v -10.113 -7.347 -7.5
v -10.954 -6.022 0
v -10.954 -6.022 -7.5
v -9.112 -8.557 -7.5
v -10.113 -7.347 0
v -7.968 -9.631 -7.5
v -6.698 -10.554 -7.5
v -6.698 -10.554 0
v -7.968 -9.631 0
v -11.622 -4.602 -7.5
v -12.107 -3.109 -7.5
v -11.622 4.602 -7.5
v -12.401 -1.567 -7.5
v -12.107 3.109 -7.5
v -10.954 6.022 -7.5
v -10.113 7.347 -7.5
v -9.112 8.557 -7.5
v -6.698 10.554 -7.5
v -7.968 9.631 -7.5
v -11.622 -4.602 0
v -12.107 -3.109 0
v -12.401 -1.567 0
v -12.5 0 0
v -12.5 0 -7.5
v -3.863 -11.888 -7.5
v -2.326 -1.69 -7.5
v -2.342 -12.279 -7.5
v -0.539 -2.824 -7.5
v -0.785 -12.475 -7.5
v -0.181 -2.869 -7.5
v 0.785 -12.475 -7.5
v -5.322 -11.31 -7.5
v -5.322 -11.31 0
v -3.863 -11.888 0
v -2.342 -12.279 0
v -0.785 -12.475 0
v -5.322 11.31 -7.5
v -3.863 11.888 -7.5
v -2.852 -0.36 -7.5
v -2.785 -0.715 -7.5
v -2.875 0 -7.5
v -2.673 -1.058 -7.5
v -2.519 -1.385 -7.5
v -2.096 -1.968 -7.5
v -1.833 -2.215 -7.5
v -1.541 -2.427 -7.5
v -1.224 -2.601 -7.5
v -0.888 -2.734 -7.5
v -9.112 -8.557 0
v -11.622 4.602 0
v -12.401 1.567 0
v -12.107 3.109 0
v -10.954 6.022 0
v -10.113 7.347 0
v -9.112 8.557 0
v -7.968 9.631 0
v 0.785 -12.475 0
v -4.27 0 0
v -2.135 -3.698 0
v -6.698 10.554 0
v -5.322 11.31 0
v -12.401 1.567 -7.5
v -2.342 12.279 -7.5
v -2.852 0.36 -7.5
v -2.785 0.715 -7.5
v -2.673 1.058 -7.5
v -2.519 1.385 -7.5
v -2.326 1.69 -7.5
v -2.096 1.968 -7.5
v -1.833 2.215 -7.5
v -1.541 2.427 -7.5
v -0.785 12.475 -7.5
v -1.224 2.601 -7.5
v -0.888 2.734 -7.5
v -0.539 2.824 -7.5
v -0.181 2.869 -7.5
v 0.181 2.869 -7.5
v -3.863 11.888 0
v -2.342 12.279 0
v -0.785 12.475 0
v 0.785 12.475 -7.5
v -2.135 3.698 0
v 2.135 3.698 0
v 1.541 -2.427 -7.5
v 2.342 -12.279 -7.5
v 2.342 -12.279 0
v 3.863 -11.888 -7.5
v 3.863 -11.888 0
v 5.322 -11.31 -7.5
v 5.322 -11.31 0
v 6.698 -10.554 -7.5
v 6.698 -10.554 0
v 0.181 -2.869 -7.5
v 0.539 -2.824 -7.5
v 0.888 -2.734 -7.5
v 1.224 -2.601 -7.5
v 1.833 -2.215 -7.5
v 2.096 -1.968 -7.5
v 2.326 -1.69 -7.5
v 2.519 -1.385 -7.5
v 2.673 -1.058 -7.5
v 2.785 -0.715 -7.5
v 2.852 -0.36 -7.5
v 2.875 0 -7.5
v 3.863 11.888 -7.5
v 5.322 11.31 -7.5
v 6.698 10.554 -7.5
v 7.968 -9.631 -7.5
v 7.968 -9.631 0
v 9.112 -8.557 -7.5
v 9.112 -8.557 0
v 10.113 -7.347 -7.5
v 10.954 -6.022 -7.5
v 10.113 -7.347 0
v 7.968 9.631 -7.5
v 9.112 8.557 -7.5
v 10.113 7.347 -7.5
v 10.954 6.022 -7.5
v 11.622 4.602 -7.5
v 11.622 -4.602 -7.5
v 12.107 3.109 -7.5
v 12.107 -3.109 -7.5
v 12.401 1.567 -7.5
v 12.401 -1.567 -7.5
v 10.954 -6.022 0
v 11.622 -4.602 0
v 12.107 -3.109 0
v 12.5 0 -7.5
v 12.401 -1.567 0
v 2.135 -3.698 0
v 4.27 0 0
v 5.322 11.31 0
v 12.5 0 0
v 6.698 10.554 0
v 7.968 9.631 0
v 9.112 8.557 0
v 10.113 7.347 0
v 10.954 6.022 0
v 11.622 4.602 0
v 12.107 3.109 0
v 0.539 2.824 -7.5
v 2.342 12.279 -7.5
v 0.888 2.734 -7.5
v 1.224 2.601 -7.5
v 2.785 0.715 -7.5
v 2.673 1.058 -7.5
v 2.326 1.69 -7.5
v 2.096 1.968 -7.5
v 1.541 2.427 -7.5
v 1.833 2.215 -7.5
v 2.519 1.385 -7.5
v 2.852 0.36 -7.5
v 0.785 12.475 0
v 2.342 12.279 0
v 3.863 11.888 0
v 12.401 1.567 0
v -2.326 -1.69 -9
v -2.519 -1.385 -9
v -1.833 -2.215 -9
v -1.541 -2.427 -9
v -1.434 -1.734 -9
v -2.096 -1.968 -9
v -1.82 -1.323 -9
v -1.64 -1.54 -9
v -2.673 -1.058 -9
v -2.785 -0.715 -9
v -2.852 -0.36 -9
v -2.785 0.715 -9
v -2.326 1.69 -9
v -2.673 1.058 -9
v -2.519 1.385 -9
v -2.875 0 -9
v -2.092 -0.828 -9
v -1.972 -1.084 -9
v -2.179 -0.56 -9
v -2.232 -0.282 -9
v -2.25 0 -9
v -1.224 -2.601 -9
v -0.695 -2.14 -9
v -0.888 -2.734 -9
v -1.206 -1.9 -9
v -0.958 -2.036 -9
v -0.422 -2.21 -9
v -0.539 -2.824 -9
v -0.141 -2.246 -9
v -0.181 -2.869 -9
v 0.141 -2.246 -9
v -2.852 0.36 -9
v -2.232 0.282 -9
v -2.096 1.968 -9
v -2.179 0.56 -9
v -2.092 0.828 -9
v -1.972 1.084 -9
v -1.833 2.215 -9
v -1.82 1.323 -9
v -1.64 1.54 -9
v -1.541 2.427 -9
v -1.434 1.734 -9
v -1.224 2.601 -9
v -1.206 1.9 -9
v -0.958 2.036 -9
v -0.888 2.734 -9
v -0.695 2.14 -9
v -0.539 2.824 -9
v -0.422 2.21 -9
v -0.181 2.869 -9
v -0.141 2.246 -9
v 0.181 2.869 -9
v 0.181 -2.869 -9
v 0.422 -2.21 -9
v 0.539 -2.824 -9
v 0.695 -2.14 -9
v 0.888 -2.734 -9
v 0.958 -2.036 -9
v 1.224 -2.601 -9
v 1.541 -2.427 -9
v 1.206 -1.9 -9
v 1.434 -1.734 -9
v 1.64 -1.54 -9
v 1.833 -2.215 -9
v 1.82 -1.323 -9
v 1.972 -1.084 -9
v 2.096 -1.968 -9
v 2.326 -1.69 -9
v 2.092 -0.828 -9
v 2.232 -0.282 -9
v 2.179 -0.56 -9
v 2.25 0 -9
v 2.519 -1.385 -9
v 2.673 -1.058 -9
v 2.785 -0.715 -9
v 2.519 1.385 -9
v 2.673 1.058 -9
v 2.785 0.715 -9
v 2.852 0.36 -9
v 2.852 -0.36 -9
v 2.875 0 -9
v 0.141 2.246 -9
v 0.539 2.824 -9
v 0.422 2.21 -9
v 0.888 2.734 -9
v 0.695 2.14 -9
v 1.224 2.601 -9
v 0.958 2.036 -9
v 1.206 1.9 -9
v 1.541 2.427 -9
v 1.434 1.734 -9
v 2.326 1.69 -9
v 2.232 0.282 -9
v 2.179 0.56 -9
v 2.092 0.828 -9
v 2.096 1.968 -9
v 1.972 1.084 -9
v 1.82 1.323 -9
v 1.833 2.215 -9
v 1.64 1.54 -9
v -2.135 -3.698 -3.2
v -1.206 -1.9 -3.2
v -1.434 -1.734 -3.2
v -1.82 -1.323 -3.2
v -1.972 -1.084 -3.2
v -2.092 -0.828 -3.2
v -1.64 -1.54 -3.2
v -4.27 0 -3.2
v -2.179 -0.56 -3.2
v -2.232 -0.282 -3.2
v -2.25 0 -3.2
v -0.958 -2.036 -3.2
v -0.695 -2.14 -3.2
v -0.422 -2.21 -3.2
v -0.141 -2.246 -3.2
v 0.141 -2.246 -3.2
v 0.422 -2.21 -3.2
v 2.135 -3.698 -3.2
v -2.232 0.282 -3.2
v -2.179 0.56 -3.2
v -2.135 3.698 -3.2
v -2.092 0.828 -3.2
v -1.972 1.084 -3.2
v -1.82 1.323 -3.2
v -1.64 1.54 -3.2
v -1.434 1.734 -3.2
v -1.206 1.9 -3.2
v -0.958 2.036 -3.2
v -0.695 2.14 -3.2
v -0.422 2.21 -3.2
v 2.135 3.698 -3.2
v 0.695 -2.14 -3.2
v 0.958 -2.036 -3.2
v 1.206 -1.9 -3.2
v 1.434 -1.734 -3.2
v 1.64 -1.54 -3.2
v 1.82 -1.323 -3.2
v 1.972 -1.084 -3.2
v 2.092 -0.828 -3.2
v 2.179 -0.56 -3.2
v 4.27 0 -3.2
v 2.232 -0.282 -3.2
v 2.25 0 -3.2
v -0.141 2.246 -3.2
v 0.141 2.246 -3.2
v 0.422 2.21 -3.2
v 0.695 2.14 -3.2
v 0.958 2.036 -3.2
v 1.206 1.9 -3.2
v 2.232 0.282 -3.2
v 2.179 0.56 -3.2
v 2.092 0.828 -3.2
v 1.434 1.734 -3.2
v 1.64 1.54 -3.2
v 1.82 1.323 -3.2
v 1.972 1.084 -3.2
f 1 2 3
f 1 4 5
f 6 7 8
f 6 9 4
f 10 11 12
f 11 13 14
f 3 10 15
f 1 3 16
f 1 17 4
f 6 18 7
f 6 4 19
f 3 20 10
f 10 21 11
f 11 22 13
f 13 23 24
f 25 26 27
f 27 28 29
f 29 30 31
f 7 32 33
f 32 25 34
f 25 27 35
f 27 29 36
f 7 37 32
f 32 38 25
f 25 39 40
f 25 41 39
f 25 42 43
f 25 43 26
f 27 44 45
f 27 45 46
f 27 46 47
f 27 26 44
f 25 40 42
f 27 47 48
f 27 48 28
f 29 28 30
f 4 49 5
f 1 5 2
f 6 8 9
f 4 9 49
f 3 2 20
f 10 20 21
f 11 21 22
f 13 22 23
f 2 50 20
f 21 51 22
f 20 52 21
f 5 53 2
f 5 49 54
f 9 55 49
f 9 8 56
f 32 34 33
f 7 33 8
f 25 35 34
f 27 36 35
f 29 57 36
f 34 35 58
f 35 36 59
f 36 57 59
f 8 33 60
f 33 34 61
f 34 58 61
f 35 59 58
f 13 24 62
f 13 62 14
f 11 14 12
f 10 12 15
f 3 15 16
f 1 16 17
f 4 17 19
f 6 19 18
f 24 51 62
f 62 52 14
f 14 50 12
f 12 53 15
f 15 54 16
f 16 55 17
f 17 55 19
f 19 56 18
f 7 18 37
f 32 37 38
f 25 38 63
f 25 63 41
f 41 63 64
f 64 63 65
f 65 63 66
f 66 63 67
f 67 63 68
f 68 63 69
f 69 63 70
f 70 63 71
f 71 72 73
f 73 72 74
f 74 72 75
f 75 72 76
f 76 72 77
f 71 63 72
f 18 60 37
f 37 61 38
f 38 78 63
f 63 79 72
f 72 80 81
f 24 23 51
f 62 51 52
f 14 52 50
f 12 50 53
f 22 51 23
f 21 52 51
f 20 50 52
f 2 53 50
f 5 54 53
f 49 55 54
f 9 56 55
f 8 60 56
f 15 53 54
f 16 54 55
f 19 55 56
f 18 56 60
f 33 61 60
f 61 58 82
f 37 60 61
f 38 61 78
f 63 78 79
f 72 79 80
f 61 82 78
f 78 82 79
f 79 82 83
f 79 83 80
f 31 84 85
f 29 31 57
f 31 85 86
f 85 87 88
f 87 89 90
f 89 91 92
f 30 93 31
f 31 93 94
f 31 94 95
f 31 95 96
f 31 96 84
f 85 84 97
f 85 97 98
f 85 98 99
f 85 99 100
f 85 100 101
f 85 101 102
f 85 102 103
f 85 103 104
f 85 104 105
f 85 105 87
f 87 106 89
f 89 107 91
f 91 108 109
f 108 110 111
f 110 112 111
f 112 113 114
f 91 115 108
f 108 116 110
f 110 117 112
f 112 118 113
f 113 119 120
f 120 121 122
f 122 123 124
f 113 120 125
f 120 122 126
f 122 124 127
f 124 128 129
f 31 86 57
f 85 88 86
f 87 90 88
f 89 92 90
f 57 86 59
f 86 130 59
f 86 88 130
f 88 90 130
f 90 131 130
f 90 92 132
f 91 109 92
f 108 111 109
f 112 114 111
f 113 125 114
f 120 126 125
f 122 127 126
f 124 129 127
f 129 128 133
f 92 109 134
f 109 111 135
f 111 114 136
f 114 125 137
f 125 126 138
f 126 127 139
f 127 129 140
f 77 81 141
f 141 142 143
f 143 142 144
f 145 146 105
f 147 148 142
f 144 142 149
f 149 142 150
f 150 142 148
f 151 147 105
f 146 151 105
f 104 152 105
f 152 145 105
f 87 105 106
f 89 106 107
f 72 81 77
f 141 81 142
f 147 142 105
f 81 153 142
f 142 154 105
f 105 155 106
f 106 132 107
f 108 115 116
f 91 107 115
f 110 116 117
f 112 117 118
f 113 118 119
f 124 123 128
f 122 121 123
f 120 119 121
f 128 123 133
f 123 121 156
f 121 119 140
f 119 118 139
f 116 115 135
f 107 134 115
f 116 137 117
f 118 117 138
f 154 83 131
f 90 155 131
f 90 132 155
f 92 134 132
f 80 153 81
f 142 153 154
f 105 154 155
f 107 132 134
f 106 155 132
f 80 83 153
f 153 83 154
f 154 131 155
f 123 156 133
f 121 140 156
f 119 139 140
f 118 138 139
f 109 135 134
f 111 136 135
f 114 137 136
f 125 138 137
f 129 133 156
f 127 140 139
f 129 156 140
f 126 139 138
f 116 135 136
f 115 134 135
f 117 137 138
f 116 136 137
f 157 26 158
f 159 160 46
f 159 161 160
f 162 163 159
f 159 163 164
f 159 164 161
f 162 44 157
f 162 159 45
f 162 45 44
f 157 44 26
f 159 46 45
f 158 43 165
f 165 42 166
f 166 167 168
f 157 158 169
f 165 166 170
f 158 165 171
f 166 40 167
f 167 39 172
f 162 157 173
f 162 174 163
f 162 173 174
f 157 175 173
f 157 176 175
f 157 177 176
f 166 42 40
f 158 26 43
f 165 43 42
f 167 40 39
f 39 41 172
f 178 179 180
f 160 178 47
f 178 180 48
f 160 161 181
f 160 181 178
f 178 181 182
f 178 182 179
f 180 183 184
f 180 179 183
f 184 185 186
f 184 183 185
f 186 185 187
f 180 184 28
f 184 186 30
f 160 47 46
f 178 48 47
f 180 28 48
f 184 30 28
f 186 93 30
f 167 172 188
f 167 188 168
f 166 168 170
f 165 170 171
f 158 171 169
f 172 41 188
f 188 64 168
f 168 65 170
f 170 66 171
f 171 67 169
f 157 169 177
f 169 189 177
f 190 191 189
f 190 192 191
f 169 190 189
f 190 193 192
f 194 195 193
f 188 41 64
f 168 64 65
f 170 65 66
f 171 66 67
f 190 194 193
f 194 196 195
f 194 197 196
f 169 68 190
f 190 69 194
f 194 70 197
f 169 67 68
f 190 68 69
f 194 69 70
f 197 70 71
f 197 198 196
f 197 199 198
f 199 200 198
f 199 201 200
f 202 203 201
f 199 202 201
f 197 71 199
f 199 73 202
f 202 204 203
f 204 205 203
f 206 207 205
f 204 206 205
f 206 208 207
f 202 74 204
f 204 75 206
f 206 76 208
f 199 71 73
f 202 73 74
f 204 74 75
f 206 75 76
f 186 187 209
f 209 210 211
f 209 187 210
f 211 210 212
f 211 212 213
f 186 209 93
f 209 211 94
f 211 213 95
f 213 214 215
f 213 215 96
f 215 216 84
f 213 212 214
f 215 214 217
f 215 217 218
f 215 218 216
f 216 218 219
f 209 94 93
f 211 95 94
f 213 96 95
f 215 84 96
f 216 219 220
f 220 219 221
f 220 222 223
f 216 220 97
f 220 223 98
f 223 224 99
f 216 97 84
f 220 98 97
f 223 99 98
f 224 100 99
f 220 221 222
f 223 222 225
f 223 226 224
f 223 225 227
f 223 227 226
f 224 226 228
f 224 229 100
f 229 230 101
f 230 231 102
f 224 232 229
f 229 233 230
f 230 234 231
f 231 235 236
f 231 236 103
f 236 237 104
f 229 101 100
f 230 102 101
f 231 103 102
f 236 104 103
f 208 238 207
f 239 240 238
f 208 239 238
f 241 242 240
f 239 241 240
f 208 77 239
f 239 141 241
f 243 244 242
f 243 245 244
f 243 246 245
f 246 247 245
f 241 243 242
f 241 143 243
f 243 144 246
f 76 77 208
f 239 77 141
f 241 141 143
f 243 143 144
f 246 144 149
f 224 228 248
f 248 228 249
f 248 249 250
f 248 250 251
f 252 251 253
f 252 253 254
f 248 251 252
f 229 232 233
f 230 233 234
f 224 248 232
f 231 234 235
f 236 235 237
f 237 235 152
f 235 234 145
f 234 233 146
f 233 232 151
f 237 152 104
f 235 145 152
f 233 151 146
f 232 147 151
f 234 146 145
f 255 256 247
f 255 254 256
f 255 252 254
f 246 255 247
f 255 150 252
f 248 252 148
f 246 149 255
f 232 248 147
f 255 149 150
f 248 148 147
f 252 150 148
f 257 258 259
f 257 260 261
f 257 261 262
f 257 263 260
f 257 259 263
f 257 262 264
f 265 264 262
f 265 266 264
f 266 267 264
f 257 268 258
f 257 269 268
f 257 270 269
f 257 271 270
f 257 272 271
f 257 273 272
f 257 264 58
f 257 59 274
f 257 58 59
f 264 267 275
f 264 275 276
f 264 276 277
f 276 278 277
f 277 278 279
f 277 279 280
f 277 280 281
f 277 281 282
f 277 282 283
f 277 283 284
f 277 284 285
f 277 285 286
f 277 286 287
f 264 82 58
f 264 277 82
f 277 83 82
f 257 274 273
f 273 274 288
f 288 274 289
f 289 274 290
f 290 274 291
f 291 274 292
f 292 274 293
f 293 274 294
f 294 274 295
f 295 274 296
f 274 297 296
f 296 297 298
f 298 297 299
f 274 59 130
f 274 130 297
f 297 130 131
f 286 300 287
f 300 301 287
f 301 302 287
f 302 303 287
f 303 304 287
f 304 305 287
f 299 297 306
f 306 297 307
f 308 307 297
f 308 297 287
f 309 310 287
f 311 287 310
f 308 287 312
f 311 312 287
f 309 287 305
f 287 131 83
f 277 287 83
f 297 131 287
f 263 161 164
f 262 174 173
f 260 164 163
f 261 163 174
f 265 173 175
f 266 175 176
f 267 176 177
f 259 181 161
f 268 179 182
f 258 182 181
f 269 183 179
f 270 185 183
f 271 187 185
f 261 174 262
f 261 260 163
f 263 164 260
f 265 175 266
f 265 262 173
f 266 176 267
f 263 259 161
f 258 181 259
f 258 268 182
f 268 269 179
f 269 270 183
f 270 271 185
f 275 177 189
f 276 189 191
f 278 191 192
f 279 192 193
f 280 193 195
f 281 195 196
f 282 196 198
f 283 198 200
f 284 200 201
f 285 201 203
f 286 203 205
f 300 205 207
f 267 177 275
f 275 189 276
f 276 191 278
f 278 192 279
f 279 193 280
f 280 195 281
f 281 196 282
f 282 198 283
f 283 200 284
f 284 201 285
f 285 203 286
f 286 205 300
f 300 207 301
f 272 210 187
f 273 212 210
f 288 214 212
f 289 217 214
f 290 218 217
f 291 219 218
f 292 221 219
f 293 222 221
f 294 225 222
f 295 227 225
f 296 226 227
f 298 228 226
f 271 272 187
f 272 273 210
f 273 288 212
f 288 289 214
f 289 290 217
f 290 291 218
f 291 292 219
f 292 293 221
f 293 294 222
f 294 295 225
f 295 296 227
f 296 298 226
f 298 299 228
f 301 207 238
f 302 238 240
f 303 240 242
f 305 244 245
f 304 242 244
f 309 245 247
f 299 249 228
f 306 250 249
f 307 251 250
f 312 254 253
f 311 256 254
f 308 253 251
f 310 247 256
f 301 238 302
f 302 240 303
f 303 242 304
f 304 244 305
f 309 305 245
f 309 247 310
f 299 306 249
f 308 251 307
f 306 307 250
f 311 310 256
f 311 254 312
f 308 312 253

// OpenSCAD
$fn = 50;


difference() {
	union() {
		translate(v = [0, 0, -7.5000000000]) {
			cylinder(h = 7.5000000000, r = 12.5000000000);
		}
		#translate(v = [0, 0, -9.0000000000]) {
			cylinder(h = 9, r = 2.8750000000);
		}
	}
	union() {
		translate(v = [0, 0, 0]) {
			rotate(a = [0, 0, 0]) {
				difference() {
					union() {
						translate(v = [0, 0, -3.2000000000]) {
							linear_extrude(height = 3.2000000000) {
								polygon(points = [[4.2698000000, 0.0000000000], [2.1349000000, 3.6977552691], [-2.1349000000, 3.6977552691], [-4.2698000000, 0.0000000000], [-2.1349000000, -3.6977552691], [2.1349000000, -3.6977552691]]);
							}
						}
					}
					union();
				}
			}
		}
		#translate(v = [0, 0, -100.0000000000]) {
			cylinder(h = 200, r = 2.2500000000);
		}
	}
}
